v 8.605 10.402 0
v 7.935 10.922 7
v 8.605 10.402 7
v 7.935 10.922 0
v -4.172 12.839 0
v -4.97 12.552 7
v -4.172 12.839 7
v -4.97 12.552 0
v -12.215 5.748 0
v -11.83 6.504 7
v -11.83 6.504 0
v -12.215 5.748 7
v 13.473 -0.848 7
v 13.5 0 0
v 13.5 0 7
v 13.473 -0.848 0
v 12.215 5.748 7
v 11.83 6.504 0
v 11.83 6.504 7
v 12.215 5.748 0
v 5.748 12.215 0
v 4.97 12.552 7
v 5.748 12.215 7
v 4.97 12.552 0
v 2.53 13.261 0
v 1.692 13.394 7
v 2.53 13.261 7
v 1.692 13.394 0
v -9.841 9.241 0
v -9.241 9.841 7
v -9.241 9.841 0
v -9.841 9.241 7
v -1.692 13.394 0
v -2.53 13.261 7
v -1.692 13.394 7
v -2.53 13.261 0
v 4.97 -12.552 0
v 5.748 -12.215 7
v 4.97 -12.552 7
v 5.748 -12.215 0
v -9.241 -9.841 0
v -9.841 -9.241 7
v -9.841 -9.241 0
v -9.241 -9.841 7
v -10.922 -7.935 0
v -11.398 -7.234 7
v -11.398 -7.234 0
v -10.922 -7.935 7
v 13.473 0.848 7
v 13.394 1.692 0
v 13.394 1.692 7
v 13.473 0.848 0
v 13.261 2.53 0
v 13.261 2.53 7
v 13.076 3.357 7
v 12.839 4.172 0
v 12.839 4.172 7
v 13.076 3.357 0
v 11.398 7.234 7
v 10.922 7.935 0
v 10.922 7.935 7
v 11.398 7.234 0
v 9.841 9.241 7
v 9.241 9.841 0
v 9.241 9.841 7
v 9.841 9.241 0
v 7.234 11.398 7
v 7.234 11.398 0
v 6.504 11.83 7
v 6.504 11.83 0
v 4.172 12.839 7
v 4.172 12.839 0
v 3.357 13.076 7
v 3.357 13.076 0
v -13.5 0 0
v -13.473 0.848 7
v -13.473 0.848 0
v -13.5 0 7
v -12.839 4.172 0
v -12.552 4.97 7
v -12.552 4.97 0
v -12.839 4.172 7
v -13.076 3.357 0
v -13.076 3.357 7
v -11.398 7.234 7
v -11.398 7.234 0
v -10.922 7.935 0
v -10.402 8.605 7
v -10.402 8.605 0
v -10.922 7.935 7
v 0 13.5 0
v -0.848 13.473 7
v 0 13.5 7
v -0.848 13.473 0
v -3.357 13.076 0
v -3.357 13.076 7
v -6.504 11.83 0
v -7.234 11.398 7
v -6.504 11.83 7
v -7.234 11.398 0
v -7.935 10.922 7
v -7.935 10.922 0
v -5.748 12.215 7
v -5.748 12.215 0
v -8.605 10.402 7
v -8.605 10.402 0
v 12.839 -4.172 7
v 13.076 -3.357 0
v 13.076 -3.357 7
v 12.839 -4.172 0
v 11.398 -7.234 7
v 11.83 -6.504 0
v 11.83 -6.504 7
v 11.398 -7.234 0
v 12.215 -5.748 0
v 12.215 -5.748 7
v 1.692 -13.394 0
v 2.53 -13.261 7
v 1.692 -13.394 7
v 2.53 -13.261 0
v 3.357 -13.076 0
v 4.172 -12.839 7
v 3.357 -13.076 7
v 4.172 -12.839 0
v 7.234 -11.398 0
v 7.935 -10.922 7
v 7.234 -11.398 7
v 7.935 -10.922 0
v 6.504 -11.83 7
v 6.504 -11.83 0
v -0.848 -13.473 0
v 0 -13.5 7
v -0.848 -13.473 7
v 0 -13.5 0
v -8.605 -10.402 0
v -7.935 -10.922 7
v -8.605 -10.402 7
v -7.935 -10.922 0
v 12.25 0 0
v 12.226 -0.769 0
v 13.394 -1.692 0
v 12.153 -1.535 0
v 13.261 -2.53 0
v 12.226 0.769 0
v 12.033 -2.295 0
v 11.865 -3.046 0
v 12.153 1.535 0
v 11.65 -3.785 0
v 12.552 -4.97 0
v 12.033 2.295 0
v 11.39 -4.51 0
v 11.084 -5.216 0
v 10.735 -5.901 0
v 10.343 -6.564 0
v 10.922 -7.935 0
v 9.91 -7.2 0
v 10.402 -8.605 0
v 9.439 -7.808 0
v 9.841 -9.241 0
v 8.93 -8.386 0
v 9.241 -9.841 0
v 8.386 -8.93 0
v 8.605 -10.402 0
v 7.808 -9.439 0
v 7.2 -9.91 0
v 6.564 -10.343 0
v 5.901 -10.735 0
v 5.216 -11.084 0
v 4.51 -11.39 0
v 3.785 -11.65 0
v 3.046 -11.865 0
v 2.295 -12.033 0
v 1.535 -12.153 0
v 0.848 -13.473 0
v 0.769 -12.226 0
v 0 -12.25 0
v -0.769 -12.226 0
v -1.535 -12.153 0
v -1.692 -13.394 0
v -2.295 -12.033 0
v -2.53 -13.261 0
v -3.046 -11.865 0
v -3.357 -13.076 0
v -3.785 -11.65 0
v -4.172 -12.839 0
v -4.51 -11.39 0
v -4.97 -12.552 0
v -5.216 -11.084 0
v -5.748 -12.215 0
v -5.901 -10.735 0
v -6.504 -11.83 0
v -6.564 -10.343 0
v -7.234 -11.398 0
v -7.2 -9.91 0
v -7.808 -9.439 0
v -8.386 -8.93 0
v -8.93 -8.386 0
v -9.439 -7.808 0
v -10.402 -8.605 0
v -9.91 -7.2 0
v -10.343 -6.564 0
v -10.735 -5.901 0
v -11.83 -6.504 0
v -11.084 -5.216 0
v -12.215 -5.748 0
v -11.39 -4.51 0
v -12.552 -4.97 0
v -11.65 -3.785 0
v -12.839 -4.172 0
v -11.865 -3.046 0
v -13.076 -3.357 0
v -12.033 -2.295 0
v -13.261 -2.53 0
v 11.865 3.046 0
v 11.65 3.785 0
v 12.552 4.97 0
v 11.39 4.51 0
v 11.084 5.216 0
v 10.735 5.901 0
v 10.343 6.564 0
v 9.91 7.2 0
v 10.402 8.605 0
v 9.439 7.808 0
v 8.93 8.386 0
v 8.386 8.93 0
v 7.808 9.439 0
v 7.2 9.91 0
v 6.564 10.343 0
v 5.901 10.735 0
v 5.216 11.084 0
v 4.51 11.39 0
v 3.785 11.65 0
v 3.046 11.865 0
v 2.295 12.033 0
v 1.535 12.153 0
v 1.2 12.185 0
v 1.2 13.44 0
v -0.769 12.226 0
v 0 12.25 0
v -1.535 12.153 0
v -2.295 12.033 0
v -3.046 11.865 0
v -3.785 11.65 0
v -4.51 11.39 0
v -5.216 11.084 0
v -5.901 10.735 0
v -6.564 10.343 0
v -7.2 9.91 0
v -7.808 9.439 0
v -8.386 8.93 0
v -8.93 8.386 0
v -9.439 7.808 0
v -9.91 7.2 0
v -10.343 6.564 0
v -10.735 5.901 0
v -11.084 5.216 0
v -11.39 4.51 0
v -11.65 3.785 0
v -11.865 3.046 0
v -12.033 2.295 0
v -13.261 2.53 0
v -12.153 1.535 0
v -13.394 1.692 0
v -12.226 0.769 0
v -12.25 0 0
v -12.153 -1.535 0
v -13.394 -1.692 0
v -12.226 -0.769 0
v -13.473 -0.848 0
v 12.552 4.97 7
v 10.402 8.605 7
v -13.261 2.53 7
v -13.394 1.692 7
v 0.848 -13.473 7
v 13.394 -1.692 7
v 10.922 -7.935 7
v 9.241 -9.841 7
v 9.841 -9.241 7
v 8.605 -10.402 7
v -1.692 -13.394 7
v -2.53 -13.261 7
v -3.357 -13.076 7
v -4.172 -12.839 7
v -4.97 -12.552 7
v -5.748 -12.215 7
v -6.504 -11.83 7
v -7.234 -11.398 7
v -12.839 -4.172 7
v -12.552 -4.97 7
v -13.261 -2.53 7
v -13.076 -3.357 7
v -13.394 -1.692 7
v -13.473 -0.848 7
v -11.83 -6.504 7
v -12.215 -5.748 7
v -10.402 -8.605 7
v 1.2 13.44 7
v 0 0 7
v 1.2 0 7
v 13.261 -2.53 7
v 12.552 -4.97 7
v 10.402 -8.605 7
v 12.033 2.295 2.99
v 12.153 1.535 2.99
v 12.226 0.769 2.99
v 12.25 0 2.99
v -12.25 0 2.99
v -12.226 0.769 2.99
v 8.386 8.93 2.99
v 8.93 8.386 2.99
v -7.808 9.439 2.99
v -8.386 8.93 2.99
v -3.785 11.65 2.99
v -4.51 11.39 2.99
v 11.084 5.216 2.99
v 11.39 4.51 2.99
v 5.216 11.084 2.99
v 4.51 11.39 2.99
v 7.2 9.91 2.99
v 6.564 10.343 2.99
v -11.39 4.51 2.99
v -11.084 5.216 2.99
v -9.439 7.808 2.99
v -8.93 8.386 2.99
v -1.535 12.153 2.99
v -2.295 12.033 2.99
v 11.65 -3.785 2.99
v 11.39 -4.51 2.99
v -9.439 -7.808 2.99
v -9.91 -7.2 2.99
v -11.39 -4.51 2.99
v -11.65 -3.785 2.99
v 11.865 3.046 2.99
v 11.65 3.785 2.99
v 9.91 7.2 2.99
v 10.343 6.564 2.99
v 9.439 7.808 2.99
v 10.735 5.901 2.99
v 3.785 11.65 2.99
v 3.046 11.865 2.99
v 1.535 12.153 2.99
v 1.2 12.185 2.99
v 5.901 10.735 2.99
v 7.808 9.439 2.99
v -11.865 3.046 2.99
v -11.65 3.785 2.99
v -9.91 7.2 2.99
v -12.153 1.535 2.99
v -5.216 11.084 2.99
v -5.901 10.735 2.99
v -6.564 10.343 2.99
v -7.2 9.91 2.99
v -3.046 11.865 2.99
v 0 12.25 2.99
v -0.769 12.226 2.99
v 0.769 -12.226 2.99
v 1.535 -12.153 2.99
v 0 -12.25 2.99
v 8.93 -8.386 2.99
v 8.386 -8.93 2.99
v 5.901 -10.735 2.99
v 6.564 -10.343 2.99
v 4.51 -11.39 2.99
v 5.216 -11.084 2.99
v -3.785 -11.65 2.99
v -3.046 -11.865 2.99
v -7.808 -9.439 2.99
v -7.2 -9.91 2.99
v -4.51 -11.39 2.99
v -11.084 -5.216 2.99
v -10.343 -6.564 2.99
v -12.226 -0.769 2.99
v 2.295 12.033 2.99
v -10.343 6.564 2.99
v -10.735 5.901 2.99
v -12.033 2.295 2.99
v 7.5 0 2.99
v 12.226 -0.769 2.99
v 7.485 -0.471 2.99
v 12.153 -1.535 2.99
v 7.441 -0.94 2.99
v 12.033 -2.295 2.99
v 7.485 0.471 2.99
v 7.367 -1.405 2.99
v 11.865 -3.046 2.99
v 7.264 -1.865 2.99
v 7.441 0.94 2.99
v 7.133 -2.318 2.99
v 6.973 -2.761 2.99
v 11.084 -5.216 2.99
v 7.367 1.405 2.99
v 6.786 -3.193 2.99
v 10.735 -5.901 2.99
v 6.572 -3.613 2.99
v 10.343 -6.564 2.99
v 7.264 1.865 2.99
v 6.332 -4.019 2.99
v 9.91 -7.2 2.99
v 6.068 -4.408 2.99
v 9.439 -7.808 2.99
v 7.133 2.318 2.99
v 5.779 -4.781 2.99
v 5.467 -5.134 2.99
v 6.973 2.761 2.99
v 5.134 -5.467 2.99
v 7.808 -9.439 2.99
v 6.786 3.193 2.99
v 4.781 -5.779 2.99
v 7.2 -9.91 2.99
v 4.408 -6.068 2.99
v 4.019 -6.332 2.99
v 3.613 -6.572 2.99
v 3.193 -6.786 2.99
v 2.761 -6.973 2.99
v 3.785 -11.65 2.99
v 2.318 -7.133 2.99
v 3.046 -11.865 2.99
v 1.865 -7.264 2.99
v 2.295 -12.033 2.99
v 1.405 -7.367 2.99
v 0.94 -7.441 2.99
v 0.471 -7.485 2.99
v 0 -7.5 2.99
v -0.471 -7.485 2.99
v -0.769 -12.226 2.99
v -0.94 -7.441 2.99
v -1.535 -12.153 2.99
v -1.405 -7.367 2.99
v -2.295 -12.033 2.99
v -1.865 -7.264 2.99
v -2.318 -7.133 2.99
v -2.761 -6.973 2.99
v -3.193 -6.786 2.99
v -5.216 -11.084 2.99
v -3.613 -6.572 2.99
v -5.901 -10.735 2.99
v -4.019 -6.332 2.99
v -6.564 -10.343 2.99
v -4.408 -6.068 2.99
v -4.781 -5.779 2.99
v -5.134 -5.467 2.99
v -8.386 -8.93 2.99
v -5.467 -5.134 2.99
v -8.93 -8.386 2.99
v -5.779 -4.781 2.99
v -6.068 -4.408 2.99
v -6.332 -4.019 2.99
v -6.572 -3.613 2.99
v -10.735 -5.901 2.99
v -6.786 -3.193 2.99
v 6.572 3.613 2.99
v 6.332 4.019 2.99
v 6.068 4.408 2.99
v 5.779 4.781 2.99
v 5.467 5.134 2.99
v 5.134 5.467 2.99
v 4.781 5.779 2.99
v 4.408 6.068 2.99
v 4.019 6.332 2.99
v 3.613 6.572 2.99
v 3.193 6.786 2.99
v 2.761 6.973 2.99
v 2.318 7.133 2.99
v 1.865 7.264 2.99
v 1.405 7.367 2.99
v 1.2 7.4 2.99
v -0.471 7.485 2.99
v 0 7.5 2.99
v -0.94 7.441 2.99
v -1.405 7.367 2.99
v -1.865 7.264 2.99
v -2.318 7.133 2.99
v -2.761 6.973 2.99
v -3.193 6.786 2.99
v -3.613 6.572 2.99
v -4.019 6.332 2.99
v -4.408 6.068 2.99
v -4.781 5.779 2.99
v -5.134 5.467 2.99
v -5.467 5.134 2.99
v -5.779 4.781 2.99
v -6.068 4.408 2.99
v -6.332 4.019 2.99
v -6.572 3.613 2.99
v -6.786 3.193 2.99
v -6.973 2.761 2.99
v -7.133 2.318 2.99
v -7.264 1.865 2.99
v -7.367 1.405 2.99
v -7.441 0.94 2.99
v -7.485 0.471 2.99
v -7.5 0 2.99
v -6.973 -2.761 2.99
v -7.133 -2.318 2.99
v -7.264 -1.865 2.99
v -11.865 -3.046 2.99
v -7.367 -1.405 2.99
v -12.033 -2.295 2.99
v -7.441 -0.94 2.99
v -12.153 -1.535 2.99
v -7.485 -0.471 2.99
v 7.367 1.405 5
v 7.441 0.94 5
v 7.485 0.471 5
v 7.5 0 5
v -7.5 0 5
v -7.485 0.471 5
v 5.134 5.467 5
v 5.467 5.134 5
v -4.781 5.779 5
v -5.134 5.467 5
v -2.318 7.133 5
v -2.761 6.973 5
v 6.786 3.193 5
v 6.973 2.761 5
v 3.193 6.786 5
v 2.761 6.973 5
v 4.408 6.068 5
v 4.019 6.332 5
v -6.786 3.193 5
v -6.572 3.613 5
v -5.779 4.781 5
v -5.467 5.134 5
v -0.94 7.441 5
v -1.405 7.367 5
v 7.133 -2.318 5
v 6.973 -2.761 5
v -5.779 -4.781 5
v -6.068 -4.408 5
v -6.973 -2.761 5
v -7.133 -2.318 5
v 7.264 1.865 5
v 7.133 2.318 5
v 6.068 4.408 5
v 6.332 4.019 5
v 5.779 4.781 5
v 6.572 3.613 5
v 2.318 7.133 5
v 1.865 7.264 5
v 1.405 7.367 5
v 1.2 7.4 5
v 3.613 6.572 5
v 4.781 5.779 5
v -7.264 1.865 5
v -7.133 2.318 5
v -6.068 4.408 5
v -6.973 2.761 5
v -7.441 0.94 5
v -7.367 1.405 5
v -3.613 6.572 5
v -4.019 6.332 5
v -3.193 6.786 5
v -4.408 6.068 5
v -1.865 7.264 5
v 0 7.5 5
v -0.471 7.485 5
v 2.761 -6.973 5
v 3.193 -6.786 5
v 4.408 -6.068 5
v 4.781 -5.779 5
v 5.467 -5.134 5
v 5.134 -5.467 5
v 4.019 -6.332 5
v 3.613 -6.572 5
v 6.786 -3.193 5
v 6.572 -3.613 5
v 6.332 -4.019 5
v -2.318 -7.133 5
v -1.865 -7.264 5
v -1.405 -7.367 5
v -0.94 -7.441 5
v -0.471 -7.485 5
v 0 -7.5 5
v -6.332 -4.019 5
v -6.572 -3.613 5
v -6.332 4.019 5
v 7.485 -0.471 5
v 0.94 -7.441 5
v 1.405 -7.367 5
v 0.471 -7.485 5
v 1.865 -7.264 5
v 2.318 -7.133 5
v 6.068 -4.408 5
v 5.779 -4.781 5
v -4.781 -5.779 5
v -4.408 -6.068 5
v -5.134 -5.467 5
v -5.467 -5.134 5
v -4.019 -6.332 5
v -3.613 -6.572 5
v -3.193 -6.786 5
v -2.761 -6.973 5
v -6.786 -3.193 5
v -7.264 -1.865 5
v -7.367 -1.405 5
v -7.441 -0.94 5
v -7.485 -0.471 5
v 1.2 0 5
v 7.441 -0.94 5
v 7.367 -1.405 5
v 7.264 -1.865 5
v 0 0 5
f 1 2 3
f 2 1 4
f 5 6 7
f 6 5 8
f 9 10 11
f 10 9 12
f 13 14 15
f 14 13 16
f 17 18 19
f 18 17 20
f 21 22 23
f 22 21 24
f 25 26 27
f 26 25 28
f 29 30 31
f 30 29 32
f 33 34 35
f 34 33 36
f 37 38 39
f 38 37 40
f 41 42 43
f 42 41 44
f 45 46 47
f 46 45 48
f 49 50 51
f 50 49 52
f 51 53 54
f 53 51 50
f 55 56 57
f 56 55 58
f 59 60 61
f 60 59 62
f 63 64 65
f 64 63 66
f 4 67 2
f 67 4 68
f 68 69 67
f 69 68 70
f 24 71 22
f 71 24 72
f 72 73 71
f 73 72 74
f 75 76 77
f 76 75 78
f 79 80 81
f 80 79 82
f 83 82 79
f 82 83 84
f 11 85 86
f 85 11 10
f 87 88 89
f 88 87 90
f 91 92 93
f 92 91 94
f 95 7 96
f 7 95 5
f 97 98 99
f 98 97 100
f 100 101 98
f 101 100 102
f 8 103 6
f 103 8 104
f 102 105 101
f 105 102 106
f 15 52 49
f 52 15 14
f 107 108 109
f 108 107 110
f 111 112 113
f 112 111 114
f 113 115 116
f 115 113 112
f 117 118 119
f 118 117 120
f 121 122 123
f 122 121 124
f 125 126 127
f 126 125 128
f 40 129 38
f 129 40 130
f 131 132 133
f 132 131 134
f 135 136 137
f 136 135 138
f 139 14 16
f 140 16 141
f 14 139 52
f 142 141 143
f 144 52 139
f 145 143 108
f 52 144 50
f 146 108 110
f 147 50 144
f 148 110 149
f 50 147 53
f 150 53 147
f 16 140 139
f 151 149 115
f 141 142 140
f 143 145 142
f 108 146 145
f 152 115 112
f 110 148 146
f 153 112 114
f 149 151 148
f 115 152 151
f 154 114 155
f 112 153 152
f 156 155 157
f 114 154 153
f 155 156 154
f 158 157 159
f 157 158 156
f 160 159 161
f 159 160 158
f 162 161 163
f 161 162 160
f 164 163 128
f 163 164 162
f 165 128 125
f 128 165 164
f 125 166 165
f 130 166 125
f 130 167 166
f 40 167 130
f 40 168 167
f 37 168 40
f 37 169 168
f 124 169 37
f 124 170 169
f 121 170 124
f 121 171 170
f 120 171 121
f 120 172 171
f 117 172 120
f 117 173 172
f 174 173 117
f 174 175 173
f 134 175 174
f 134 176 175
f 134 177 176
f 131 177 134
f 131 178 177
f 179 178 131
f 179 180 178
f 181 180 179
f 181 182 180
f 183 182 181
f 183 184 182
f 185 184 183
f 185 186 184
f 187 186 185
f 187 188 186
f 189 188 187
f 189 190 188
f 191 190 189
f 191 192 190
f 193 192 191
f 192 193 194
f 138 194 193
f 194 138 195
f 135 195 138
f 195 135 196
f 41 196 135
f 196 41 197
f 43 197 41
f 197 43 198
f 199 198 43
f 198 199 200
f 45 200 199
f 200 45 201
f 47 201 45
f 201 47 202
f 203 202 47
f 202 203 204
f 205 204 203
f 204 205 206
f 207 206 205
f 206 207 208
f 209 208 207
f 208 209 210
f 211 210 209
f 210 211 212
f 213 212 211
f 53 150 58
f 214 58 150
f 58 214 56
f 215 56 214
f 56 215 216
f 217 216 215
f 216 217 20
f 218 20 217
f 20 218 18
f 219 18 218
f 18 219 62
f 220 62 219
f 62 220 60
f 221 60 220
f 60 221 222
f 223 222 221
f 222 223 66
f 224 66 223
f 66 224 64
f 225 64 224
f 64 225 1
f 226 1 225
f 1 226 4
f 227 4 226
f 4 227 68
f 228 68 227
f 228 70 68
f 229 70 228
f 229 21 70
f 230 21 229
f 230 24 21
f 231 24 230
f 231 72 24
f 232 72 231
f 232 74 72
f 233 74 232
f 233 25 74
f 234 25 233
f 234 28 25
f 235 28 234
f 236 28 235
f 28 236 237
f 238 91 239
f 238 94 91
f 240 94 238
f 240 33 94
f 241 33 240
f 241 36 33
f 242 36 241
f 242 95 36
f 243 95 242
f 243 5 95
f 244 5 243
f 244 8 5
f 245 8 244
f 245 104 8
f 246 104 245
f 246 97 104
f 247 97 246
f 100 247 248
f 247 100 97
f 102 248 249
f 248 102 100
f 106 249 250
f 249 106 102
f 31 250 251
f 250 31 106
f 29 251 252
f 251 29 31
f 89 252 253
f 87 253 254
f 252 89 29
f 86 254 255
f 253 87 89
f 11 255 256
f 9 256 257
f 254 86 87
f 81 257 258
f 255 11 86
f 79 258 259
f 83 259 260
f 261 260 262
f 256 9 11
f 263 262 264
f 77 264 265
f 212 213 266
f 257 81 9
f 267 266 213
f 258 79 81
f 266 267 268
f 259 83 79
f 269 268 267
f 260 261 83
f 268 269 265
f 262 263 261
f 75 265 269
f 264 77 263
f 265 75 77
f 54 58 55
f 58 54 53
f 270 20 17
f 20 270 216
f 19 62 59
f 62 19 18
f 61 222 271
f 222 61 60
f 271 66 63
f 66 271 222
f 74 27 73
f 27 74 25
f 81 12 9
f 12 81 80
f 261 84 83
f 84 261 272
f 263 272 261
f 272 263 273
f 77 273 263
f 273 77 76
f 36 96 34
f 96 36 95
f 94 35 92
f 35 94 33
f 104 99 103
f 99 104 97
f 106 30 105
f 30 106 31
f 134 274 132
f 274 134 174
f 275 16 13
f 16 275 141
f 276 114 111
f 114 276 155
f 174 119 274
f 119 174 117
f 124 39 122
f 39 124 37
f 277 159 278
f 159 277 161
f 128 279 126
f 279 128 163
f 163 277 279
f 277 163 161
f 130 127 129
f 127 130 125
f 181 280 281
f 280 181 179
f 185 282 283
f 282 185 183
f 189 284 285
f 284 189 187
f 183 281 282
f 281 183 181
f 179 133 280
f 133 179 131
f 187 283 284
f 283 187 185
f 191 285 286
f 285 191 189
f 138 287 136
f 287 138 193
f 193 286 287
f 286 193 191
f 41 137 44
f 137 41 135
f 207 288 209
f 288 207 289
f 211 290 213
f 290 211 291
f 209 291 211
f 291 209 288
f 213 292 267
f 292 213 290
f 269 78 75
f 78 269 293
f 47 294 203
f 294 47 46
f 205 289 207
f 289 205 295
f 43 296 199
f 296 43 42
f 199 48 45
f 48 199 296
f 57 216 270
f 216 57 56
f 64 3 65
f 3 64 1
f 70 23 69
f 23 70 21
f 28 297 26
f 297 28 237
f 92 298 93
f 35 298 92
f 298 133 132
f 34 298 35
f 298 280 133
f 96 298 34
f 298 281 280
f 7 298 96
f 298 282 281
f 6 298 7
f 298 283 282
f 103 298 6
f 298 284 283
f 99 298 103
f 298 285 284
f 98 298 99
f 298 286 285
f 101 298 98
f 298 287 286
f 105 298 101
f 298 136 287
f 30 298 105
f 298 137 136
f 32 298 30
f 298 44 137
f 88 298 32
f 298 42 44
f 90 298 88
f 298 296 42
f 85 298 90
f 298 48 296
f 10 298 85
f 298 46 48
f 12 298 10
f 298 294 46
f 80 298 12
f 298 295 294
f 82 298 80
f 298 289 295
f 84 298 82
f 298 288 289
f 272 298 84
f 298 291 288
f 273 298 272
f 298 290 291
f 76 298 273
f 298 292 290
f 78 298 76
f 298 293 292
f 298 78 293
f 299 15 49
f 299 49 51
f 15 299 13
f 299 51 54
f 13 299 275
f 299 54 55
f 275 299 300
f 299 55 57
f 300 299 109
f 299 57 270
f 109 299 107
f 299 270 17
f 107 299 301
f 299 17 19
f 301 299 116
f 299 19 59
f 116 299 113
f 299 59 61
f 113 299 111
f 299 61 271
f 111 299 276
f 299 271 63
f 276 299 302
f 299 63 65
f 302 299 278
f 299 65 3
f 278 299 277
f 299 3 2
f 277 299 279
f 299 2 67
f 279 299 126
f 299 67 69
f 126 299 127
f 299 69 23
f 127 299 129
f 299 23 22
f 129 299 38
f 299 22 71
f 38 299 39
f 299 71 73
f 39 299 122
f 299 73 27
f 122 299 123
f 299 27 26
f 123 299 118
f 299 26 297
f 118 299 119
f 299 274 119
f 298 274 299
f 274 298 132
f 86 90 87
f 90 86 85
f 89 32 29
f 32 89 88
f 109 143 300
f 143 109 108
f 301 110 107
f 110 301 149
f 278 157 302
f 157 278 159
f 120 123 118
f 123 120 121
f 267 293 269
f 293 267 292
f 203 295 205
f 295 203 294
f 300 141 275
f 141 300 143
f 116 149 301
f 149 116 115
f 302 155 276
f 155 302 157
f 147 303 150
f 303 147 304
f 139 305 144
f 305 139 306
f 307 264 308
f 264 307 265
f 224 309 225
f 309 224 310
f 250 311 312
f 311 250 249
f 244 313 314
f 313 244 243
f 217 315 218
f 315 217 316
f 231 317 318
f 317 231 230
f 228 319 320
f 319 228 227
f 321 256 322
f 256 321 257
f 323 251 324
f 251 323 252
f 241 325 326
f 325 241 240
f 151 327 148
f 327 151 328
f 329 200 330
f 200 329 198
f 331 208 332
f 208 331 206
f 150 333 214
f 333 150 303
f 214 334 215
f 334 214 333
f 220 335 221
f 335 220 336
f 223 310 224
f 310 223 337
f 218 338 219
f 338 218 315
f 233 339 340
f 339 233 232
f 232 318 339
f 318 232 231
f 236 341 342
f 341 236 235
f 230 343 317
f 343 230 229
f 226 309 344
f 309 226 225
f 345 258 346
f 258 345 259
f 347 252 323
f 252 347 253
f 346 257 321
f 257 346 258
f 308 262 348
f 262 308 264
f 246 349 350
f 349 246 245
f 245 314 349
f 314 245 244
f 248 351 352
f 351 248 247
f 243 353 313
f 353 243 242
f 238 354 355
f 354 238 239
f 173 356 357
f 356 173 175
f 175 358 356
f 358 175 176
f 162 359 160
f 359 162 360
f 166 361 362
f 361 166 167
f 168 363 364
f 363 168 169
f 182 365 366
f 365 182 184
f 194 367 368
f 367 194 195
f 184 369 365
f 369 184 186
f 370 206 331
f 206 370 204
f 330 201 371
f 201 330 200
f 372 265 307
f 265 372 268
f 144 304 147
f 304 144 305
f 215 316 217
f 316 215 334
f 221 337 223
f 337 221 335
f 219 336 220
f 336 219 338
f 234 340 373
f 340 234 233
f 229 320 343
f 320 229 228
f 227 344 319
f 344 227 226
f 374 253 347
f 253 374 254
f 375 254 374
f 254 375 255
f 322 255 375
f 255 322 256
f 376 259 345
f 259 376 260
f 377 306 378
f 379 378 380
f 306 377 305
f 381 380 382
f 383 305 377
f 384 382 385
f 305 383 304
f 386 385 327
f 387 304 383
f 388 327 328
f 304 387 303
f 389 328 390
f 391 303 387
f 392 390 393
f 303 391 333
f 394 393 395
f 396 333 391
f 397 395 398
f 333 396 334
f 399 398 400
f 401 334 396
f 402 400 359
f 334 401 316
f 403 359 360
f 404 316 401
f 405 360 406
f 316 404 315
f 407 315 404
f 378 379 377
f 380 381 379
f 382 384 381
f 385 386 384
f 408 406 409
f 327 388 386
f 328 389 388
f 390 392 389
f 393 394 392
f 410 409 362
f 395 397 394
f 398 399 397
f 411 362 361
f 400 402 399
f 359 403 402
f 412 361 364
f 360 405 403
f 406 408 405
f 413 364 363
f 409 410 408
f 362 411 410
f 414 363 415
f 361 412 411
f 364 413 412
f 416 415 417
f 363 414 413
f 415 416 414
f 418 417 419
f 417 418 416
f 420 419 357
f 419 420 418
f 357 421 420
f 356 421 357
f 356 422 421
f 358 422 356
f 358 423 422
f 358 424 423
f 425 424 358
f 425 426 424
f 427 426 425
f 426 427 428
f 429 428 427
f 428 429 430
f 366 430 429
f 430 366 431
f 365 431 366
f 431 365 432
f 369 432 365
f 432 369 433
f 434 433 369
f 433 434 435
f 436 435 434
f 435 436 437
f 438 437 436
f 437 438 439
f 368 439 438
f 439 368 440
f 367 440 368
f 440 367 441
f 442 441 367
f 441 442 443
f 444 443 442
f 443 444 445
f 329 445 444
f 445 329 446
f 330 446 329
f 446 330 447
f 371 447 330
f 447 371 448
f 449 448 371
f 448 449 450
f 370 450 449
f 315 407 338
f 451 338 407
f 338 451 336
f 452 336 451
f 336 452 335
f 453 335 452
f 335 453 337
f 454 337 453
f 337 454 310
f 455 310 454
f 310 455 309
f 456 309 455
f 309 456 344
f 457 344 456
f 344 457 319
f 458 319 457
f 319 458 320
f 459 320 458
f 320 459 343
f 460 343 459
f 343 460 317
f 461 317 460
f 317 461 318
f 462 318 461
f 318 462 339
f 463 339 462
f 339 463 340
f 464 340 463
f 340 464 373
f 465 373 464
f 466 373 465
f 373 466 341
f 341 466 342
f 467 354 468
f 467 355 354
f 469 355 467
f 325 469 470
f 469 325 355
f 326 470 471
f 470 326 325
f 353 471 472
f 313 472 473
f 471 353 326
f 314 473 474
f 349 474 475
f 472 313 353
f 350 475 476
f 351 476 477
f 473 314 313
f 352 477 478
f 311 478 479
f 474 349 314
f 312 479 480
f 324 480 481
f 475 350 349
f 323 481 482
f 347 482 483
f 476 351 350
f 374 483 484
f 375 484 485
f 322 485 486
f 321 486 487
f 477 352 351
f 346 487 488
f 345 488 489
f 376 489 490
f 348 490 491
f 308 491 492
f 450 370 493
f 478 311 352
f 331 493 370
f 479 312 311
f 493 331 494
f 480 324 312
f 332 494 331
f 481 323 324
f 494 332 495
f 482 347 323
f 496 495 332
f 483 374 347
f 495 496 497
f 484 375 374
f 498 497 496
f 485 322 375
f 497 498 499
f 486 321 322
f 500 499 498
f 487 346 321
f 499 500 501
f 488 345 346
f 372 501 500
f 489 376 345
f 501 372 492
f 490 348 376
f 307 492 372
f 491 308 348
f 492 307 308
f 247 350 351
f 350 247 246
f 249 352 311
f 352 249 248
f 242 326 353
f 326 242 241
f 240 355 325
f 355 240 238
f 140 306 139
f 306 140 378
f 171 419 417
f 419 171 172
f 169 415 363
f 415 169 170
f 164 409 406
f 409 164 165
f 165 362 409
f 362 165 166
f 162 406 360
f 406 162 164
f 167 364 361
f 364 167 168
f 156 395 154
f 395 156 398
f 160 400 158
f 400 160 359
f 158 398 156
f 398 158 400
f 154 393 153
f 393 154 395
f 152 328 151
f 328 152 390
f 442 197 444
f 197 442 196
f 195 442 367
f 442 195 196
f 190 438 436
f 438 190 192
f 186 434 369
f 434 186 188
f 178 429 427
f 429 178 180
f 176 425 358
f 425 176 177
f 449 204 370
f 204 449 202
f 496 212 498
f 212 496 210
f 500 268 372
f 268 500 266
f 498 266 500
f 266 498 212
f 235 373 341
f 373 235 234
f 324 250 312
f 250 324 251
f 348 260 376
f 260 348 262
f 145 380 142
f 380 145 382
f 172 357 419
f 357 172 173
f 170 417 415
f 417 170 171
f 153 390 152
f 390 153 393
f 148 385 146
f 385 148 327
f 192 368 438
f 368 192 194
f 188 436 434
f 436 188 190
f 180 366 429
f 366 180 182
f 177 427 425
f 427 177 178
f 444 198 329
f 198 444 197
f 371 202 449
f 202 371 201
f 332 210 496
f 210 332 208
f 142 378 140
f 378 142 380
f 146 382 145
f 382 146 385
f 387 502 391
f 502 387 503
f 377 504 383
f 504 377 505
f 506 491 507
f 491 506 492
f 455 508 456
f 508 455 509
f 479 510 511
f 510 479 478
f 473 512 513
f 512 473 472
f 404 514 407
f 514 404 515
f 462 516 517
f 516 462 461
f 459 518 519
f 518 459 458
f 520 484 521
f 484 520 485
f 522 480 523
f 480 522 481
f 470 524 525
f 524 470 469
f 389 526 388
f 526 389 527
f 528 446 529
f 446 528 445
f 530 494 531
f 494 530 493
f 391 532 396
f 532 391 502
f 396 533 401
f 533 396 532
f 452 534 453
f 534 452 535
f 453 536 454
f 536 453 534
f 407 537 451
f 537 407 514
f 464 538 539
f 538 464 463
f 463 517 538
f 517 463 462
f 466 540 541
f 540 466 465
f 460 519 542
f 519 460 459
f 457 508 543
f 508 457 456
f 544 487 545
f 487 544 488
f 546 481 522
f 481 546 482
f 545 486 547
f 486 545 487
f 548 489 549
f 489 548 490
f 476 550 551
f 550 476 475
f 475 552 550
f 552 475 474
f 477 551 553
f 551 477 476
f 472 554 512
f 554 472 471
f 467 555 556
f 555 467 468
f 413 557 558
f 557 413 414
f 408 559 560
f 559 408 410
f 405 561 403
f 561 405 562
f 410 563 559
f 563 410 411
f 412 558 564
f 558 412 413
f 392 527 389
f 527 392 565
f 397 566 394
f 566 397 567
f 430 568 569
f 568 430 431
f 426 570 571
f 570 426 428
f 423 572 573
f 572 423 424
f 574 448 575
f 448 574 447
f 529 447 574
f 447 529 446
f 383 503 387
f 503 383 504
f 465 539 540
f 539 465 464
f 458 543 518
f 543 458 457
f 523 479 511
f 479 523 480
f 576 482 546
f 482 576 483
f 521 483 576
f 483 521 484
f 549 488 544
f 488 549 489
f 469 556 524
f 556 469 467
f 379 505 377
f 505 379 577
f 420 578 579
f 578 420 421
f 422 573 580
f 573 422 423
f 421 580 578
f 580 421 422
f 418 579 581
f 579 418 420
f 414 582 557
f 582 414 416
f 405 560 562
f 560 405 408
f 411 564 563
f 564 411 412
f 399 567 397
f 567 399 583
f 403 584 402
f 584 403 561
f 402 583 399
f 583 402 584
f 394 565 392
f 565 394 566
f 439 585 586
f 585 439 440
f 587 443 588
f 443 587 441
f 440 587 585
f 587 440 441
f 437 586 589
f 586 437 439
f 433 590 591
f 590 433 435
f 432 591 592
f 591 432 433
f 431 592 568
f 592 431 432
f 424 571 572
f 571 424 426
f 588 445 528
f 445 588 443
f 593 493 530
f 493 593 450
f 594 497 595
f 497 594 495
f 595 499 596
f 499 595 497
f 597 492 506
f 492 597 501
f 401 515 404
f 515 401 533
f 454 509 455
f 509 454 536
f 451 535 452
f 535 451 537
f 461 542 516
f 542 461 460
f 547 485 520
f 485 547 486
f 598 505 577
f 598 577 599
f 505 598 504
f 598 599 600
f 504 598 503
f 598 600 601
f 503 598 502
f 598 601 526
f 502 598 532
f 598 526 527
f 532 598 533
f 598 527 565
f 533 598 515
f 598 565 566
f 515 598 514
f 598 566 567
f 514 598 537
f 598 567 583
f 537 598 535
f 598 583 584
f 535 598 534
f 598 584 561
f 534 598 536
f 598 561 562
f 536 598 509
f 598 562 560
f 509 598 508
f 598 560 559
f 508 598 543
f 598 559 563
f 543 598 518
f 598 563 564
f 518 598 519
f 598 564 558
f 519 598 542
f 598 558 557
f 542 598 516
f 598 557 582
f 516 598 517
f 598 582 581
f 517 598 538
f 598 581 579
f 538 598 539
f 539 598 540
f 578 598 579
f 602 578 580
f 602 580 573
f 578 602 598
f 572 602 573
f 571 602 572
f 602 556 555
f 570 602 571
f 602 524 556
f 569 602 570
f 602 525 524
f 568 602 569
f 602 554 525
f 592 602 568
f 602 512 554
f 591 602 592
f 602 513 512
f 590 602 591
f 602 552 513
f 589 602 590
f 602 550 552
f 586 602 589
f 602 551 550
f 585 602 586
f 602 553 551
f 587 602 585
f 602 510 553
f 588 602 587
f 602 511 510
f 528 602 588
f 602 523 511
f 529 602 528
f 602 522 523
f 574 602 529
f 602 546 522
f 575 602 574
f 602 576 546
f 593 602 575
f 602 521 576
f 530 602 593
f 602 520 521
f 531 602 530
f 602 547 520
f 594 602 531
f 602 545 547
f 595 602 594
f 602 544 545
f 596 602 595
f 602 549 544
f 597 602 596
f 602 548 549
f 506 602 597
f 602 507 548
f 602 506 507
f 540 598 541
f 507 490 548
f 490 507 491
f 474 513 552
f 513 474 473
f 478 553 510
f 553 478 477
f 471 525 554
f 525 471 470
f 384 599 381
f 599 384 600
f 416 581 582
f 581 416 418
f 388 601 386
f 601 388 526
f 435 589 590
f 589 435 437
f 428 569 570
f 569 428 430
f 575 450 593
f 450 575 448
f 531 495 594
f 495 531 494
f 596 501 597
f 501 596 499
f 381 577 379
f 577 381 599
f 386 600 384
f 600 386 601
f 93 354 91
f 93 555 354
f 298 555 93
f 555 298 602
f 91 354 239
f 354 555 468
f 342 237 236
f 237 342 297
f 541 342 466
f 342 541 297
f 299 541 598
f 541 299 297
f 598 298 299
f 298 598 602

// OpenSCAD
$fn=100;
preview=0.01;

color("red")
difference() {
    cylinder(d=27, 7);

    translate([0,0,-preview])
        cylinder(d=24.5, h=3);
    
    cylinder(d=15, h=5);

    translate([0,0,-preview])
        cube([1.2, 27/2, 7+2*preview]);
}
